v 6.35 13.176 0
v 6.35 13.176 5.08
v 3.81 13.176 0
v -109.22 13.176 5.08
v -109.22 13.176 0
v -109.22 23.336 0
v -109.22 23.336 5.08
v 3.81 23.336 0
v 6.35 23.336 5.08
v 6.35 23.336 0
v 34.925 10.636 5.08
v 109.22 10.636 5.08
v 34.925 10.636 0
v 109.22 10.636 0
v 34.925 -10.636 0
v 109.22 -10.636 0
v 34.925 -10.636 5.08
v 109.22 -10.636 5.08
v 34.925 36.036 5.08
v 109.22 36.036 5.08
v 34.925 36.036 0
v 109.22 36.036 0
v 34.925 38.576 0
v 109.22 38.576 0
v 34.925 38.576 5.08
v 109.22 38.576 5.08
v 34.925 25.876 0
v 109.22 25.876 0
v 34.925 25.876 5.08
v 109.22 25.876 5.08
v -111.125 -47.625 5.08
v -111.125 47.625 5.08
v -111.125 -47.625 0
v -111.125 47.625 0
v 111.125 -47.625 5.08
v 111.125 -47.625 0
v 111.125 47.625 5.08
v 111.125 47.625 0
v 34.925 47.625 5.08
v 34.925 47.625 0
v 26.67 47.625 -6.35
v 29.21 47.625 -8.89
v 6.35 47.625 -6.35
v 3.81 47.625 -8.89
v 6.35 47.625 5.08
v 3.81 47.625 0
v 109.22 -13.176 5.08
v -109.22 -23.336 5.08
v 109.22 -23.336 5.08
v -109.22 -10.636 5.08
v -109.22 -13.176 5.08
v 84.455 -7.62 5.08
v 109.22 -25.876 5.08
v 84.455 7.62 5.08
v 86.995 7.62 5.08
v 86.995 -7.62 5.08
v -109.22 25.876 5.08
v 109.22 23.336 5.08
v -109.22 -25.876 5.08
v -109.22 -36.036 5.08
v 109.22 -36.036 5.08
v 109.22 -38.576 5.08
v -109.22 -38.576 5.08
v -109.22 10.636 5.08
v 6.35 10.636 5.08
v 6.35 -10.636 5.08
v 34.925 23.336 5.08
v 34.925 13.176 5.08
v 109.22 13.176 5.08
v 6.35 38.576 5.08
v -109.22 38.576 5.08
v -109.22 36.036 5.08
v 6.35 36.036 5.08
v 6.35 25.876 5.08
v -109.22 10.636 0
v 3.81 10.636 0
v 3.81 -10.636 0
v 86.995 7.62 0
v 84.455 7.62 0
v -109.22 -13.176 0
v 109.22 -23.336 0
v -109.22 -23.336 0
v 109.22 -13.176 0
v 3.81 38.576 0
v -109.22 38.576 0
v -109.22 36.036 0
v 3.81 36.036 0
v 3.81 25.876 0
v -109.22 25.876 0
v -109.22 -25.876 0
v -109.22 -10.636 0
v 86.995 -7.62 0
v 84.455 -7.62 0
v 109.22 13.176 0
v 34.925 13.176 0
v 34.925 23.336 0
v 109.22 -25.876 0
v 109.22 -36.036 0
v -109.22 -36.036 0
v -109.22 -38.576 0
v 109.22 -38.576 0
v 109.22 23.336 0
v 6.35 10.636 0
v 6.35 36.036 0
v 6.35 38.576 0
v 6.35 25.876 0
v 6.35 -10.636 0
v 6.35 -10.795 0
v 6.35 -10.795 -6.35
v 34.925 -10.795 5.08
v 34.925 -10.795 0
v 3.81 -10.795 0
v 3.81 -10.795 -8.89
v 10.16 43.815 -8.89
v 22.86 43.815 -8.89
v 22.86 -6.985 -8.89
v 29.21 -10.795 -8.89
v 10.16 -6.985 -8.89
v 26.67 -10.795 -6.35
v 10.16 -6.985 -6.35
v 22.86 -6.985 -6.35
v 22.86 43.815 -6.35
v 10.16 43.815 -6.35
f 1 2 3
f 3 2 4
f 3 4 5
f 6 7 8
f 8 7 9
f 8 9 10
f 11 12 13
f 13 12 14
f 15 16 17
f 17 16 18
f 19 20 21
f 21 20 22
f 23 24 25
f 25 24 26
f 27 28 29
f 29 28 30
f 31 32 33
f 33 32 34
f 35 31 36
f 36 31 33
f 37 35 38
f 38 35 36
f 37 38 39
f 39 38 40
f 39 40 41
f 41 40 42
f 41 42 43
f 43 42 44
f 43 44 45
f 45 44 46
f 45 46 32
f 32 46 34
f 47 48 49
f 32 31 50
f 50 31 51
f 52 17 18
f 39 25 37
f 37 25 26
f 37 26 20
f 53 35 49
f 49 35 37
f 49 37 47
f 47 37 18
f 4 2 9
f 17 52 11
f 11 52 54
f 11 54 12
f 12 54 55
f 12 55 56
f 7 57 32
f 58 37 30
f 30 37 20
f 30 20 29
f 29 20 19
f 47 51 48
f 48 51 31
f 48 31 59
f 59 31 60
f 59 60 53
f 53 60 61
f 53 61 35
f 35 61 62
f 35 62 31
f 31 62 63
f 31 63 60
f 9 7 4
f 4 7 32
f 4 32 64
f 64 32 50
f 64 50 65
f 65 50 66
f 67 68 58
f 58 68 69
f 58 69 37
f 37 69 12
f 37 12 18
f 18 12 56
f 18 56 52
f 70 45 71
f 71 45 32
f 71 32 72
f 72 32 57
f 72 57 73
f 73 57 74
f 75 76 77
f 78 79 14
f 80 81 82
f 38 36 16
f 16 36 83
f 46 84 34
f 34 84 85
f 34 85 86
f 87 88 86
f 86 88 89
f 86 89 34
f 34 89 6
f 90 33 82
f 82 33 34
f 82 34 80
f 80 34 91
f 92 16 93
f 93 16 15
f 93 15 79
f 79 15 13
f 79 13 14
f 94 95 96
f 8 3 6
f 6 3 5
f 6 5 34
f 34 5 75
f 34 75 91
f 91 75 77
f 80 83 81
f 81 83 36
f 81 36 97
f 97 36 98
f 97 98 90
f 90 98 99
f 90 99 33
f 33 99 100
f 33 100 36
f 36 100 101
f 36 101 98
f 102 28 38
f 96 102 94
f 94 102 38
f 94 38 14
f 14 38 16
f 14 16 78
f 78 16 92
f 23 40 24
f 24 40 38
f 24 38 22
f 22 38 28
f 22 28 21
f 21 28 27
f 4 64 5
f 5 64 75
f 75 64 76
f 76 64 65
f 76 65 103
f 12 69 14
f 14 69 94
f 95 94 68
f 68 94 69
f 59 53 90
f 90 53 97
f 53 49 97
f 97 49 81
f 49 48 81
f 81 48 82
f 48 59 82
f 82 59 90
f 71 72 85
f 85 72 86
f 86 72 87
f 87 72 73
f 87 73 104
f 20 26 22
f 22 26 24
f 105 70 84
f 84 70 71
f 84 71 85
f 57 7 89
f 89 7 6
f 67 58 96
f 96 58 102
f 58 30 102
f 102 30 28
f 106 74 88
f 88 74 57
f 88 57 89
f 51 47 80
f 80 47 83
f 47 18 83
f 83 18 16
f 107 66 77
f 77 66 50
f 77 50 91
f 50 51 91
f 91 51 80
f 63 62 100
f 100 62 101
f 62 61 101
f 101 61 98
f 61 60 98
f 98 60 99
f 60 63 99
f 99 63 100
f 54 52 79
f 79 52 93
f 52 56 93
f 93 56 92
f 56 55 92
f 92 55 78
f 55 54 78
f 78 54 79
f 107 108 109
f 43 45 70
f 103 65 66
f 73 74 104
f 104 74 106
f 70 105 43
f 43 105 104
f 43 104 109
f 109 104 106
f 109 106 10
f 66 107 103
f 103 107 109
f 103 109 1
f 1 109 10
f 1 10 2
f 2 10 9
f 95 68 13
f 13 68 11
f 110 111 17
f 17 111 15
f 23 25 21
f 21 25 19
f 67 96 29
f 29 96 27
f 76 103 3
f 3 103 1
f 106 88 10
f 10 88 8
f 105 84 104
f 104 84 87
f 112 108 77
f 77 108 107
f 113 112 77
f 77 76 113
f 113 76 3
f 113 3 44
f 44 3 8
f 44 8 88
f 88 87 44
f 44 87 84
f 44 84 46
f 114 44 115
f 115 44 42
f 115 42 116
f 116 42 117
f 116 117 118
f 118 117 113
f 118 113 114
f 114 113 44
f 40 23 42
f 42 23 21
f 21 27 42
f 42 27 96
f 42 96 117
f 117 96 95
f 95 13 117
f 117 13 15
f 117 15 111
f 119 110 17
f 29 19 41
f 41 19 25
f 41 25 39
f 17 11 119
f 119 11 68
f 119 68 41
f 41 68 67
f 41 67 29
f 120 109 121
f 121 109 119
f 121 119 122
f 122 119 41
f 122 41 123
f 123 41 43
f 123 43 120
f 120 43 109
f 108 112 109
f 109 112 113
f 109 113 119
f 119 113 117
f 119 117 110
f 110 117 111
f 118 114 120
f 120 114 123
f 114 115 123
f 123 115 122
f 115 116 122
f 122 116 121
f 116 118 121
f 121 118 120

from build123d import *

# Parameters (mm, degrees)
SKETCH1_W           = 222.25
SKETCH1_H           = 95.25
BOSS_EXTRUDE1_DEPTH = 5.08
SKETCH2_W           = 218.44
SKETCH2_H           = 2.54
CUT_EXTRUDE1_DEPTH  = 5.08
SKETCH5_W           = 2.54
SKETCH5_H           = 15.24
CUT_EXTRUDE4_DEPTH  = 5.08
SKETCH7_W           = 28.575
SKETCH7_H           = 21.74875
CUT_EXTRUDE5_DEPTH  = 5.08
SKETCH8_W           = 28.575
SKETCH8_H           = 21.2725
CUT_EXTRUDE6_DEPTH  = 5.08
SKETCH11_W          = 28.575
SKETCH11_H          = 10.16
CUT_EXTRUDE8_DEPTH  = 5.08
BOSS_EXTRUDE2_DEPTH = 58.42
SKETCH12_W          = 12.7
SKETCH12_H          = 50.8
CUT_EXTRUDE9_DEPTH  = 2.54


with BuildPart() as part:
    # Sketch1 → Boss-Extrude1 (new body)
    with BuildSketch(Plane.XY):
        Rectangle(SKETCH1_W, SKETCH1_H)
    extrude(amount=BOSS_EXTRUDE1_DEPTH)

    # Sketch2 → Cut-Extrude1 (cut)
    with BuildSketch(Plane(origin=(0, 0, 0), x_dir=(-1, 0, 0), z_dir=(0, 0, -1))):
        with Locations((0, 24.60625)):
            Rectangle(SKETCH2_W, SKETCH2_H)
        with Locations((0, 11.90625)):
            Rectangle(SKETCH2_W, SKETCH2_H)
        with Locations((0, 37.30625)):
            Rectangle(SKETCH2_W, SKETCH2_H)
        with Locations((0, -11.90625)):
            Rectangle(SKETCH2_W, SKETCH2_H)
        with Locations((0, -24.60625)):
            Rectangle(SKETCH2_W, SKETCH2_H)
        with Locations((0, -37.30625)):
            Rectangle(SKETCH2_W, SKETCH2_H)
    extrude(amount=-CUT_EXTRUDE1_DEPTH, mode=Mode.SUBTRACT)

    # Sketch5 → Cut-Extrude4 (cut)
    with BuildSketch(Plane(origin=(0, 0, 0), x_dir=(-1, 0, 0), z_dir=(0, 0, -1))):
        with Locations((-85.725, 0)):
            Rectangle(SKETCH5_W, SKETCH5_H)
    extrude(amount=-CUT_EXTRUDE4_DEPTH, mode=Mode.SUBTRACT)

    # Sketch7 → Cut-Extrude5 (cut)
    with BuildSketch(Plane(origin=(0, 0, 0), x_dir=(-1, 0, 0), z_dir=(0, 0, -1))):
        with Locations((-20.6375, 36.750625)):
            Rectangle(SKETCH7_W, SKETCH7_H)
    extrude(amount=-CUT_EXTRUDE5_DEPTH, mode=Mode.SUBTRACT)

    # Sketch8 → Cut-Extrude6 (cut)
    with BuildSketch(Plane(origin=(0, 0, 0), x_dir=(-1, 0, 0), z_dir=(0, 0, -1))):
        with Locations((-20.6375, 0)):
            Rectangle(SKETCH8_W, SKETCH8_H)
    extrude(amount=-CUT_EXTRUDE6_DEPTH, mode=Mode.SUBTRACT)

    # Sketch11 → Cut-Extrude8 (cut)
    with BuildSketch(Plane(origin=(0, 0, 0), x_dir=(-1, 0, 0), z_dir=(0, 0, -1))):
        with Locations((-20.6375, 18.25625)):
            Rectangle(SKETCH11_W, SKETCH11_H)
    extrude(amount=-CUT_EXTRUDE8_DEPTH, mode=Mode.SUBTRACT)

    # Sketch10 → Boss-Extrude2 (add)
    with BuildSketch(Plane(origin=(0, 47.625, 0), x_dir=(1, 0, 0), z_dir=(0, 1, 0))):
        Polygon((6.35, 0), (6.35, 6.35), (26.67, 6.35), (34.925, -5.08), (34.925, 0), (29.21, 8.89), (3.81, 8.89), (3.81, 0), align=None)
    extrude(amount=-BOSS_EXTRUDE2_DEPTH)

    # Sketch12 → Cut-Extrude9 (cut)
    with BuildSketch(Plane.XY.offset(-6.35)):
        with Locations((16.51, 18.415)):
            Rectangle(SKETCH12_W, SKETCH12_H)
    extrude(amount=-CUT_EXTRUDE9_DEPTH, mode=Mode.SUBTRACT)


solid = part.part
